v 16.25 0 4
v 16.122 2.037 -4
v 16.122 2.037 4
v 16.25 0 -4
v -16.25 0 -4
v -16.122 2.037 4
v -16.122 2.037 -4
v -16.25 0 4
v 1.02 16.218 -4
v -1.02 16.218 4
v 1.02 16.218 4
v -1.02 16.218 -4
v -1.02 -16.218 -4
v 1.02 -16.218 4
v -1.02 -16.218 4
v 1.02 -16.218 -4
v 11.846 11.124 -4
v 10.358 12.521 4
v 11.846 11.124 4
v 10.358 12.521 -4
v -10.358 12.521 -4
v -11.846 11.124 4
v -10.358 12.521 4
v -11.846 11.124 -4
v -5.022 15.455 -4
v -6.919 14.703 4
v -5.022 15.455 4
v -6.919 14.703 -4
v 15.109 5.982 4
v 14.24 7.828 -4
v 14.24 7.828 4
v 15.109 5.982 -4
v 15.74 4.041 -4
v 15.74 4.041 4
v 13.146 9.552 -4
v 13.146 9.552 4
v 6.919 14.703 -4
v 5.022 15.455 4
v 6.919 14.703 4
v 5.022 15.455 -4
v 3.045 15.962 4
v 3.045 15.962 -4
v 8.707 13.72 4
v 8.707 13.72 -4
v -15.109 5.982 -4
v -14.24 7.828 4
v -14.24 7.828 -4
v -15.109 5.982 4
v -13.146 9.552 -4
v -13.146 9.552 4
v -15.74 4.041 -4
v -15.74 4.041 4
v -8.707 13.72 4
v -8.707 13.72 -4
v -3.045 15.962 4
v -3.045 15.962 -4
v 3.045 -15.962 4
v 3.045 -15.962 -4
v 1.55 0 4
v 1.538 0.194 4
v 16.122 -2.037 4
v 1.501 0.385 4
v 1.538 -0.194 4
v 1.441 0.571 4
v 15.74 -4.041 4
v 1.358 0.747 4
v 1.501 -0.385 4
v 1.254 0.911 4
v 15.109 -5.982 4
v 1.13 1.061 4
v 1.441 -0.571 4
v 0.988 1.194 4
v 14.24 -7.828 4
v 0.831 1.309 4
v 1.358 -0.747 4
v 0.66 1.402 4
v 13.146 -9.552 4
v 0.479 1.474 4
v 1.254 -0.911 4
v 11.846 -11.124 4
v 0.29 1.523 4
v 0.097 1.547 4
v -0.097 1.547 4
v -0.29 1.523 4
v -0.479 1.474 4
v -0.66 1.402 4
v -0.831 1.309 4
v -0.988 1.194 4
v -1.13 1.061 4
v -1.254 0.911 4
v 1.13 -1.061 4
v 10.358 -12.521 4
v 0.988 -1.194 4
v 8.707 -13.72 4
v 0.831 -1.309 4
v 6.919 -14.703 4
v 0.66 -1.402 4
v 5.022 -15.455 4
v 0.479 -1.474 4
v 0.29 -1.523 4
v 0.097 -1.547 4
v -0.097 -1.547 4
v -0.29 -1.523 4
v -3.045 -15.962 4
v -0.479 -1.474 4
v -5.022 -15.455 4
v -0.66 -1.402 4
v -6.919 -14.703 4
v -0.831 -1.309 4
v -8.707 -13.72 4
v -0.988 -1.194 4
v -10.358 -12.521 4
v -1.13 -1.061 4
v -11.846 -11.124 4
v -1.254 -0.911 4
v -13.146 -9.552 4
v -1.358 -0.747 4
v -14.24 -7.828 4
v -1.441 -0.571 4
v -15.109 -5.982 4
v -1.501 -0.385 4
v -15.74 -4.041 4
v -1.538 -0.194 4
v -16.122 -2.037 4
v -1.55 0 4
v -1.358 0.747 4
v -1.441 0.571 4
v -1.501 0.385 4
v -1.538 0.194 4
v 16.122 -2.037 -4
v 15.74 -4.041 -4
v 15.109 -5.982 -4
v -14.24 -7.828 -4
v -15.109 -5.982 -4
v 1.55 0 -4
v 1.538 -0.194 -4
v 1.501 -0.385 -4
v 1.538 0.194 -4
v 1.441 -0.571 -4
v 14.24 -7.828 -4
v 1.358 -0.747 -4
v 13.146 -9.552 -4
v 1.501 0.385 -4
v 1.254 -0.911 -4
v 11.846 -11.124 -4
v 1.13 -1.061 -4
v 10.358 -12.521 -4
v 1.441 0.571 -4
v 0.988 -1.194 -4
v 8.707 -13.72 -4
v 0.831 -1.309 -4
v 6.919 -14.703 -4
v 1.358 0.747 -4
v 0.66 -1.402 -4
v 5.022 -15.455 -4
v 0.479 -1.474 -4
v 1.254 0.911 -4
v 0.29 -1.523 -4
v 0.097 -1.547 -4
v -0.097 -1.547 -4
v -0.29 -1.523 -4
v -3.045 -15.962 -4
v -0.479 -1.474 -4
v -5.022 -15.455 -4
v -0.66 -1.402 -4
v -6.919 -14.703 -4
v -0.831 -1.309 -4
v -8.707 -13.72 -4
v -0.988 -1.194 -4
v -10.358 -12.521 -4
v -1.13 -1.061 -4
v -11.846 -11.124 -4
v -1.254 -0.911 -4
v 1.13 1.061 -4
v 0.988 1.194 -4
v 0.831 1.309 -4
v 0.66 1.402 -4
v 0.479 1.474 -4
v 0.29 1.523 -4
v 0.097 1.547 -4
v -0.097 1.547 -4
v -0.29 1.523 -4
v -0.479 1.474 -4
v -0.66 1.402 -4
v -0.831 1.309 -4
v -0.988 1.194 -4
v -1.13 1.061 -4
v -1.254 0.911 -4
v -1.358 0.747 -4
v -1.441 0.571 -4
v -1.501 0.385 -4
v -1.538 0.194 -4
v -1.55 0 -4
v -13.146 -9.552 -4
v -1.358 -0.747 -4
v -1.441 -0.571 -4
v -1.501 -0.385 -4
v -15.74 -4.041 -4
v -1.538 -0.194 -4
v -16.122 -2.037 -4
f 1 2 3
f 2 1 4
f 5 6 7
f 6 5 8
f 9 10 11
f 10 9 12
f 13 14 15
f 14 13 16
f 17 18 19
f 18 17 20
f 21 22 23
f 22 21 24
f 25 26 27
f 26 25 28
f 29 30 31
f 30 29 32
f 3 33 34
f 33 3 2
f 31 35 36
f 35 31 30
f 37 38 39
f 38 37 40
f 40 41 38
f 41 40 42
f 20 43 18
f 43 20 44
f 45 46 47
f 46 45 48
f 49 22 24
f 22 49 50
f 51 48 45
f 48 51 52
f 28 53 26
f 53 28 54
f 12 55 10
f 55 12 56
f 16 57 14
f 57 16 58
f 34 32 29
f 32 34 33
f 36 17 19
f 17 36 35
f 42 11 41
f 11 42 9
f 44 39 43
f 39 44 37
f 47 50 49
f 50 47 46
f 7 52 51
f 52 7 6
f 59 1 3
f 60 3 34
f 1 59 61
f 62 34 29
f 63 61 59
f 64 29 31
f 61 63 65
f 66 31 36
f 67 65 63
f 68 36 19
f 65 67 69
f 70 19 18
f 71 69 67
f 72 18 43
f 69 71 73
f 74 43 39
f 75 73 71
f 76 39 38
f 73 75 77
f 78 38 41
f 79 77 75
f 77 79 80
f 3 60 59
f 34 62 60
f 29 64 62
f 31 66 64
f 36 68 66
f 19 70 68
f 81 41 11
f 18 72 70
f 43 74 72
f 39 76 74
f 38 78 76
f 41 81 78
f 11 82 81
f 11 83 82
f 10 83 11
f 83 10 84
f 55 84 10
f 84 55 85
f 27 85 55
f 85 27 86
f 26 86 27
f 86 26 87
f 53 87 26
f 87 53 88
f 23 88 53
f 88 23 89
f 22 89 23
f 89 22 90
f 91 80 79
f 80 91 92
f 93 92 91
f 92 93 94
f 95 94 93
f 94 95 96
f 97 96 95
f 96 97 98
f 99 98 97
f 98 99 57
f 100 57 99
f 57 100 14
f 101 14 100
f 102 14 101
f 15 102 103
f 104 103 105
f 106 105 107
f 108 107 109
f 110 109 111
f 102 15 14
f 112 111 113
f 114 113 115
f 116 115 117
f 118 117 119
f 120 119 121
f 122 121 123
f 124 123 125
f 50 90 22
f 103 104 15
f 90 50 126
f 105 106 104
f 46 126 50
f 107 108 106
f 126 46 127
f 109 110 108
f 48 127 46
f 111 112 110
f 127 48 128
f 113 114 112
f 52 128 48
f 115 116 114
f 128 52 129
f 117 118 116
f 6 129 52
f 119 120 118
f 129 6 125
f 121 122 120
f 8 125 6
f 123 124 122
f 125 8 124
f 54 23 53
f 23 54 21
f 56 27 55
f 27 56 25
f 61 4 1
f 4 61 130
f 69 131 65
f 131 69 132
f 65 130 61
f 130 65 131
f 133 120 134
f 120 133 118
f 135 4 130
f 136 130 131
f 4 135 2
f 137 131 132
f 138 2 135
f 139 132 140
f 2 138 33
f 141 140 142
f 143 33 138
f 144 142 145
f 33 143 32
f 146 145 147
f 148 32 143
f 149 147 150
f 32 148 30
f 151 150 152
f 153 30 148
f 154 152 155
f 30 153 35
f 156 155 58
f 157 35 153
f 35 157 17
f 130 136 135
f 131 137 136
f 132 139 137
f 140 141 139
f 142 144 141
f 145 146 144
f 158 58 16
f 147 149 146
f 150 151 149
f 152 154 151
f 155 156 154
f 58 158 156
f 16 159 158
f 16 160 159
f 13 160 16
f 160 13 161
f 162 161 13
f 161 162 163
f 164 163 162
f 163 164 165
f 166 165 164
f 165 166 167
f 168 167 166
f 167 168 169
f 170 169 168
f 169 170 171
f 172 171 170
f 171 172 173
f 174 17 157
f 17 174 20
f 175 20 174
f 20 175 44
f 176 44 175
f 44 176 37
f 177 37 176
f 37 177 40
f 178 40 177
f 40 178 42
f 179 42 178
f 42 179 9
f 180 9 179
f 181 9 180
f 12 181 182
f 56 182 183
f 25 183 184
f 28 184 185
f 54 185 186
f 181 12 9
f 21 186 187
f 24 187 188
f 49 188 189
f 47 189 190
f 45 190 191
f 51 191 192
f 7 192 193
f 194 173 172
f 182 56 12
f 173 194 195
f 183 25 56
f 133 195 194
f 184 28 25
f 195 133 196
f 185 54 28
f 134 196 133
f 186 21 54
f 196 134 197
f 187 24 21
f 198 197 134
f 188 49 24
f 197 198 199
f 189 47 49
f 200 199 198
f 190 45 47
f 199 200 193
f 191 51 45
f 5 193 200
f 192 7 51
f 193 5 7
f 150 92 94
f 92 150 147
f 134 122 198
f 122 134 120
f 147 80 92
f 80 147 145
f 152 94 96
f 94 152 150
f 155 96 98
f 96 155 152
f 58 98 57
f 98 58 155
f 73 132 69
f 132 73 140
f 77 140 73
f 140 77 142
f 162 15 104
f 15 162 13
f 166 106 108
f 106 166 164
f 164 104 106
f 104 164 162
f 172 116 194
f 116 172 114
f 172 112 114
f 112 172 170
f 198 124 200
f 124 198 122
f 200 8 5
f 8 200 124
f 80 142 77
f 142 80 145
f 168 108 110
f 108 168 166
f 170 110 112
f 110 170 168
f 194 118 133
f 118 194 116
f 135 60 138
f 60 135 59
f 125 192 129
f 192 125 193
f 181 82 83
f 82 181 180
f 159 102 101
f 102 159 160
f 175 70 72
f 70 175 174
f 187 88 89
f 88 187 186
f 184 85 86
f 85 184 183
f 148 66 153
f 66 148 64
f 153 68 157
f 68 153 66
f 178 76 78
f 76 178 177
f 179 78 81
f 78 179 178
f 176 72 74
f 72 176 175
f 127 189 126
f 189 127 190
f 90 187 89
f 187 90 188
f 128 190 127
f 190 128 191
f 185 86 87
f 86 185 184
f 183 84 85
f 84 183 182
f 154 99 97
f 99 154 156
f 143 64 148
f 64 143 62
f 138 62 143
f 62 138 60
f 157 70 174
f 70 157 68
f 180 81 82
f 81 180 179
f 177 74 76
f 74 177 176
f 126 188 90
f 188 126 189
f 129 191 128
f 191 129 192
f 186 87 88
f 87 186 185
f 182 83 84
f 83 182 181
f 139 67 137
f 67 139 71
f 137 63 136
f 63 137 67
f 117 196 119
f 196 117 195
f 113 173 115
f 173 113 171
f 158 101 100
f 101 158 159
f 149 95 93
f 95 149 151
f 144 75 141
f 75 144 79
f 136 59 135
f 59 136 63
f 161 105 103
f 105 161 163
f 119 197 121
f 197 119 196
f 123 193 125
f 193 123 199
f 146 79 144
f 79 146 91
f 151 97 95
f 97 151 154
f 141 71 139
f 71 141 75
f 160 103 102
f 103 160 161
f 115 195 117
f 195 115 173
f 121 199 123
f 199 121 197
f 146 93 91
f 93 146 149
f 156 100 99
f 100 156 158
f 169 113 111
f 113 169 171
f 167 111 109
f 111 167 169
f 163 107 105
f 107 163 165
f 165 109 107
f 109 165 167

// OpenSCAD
$fn = 50;


difference() {
	union() {
		translate(v = [0, 0, -4.0000000000]) {
			cylinder(h = 8, r = 16.2500000000);
		}
	}
	union() {
		translate(v = [0, 0, -100.0000000000]) {
			cylinder(h = 200, r = 1.5500000000);
		}
	}
}
